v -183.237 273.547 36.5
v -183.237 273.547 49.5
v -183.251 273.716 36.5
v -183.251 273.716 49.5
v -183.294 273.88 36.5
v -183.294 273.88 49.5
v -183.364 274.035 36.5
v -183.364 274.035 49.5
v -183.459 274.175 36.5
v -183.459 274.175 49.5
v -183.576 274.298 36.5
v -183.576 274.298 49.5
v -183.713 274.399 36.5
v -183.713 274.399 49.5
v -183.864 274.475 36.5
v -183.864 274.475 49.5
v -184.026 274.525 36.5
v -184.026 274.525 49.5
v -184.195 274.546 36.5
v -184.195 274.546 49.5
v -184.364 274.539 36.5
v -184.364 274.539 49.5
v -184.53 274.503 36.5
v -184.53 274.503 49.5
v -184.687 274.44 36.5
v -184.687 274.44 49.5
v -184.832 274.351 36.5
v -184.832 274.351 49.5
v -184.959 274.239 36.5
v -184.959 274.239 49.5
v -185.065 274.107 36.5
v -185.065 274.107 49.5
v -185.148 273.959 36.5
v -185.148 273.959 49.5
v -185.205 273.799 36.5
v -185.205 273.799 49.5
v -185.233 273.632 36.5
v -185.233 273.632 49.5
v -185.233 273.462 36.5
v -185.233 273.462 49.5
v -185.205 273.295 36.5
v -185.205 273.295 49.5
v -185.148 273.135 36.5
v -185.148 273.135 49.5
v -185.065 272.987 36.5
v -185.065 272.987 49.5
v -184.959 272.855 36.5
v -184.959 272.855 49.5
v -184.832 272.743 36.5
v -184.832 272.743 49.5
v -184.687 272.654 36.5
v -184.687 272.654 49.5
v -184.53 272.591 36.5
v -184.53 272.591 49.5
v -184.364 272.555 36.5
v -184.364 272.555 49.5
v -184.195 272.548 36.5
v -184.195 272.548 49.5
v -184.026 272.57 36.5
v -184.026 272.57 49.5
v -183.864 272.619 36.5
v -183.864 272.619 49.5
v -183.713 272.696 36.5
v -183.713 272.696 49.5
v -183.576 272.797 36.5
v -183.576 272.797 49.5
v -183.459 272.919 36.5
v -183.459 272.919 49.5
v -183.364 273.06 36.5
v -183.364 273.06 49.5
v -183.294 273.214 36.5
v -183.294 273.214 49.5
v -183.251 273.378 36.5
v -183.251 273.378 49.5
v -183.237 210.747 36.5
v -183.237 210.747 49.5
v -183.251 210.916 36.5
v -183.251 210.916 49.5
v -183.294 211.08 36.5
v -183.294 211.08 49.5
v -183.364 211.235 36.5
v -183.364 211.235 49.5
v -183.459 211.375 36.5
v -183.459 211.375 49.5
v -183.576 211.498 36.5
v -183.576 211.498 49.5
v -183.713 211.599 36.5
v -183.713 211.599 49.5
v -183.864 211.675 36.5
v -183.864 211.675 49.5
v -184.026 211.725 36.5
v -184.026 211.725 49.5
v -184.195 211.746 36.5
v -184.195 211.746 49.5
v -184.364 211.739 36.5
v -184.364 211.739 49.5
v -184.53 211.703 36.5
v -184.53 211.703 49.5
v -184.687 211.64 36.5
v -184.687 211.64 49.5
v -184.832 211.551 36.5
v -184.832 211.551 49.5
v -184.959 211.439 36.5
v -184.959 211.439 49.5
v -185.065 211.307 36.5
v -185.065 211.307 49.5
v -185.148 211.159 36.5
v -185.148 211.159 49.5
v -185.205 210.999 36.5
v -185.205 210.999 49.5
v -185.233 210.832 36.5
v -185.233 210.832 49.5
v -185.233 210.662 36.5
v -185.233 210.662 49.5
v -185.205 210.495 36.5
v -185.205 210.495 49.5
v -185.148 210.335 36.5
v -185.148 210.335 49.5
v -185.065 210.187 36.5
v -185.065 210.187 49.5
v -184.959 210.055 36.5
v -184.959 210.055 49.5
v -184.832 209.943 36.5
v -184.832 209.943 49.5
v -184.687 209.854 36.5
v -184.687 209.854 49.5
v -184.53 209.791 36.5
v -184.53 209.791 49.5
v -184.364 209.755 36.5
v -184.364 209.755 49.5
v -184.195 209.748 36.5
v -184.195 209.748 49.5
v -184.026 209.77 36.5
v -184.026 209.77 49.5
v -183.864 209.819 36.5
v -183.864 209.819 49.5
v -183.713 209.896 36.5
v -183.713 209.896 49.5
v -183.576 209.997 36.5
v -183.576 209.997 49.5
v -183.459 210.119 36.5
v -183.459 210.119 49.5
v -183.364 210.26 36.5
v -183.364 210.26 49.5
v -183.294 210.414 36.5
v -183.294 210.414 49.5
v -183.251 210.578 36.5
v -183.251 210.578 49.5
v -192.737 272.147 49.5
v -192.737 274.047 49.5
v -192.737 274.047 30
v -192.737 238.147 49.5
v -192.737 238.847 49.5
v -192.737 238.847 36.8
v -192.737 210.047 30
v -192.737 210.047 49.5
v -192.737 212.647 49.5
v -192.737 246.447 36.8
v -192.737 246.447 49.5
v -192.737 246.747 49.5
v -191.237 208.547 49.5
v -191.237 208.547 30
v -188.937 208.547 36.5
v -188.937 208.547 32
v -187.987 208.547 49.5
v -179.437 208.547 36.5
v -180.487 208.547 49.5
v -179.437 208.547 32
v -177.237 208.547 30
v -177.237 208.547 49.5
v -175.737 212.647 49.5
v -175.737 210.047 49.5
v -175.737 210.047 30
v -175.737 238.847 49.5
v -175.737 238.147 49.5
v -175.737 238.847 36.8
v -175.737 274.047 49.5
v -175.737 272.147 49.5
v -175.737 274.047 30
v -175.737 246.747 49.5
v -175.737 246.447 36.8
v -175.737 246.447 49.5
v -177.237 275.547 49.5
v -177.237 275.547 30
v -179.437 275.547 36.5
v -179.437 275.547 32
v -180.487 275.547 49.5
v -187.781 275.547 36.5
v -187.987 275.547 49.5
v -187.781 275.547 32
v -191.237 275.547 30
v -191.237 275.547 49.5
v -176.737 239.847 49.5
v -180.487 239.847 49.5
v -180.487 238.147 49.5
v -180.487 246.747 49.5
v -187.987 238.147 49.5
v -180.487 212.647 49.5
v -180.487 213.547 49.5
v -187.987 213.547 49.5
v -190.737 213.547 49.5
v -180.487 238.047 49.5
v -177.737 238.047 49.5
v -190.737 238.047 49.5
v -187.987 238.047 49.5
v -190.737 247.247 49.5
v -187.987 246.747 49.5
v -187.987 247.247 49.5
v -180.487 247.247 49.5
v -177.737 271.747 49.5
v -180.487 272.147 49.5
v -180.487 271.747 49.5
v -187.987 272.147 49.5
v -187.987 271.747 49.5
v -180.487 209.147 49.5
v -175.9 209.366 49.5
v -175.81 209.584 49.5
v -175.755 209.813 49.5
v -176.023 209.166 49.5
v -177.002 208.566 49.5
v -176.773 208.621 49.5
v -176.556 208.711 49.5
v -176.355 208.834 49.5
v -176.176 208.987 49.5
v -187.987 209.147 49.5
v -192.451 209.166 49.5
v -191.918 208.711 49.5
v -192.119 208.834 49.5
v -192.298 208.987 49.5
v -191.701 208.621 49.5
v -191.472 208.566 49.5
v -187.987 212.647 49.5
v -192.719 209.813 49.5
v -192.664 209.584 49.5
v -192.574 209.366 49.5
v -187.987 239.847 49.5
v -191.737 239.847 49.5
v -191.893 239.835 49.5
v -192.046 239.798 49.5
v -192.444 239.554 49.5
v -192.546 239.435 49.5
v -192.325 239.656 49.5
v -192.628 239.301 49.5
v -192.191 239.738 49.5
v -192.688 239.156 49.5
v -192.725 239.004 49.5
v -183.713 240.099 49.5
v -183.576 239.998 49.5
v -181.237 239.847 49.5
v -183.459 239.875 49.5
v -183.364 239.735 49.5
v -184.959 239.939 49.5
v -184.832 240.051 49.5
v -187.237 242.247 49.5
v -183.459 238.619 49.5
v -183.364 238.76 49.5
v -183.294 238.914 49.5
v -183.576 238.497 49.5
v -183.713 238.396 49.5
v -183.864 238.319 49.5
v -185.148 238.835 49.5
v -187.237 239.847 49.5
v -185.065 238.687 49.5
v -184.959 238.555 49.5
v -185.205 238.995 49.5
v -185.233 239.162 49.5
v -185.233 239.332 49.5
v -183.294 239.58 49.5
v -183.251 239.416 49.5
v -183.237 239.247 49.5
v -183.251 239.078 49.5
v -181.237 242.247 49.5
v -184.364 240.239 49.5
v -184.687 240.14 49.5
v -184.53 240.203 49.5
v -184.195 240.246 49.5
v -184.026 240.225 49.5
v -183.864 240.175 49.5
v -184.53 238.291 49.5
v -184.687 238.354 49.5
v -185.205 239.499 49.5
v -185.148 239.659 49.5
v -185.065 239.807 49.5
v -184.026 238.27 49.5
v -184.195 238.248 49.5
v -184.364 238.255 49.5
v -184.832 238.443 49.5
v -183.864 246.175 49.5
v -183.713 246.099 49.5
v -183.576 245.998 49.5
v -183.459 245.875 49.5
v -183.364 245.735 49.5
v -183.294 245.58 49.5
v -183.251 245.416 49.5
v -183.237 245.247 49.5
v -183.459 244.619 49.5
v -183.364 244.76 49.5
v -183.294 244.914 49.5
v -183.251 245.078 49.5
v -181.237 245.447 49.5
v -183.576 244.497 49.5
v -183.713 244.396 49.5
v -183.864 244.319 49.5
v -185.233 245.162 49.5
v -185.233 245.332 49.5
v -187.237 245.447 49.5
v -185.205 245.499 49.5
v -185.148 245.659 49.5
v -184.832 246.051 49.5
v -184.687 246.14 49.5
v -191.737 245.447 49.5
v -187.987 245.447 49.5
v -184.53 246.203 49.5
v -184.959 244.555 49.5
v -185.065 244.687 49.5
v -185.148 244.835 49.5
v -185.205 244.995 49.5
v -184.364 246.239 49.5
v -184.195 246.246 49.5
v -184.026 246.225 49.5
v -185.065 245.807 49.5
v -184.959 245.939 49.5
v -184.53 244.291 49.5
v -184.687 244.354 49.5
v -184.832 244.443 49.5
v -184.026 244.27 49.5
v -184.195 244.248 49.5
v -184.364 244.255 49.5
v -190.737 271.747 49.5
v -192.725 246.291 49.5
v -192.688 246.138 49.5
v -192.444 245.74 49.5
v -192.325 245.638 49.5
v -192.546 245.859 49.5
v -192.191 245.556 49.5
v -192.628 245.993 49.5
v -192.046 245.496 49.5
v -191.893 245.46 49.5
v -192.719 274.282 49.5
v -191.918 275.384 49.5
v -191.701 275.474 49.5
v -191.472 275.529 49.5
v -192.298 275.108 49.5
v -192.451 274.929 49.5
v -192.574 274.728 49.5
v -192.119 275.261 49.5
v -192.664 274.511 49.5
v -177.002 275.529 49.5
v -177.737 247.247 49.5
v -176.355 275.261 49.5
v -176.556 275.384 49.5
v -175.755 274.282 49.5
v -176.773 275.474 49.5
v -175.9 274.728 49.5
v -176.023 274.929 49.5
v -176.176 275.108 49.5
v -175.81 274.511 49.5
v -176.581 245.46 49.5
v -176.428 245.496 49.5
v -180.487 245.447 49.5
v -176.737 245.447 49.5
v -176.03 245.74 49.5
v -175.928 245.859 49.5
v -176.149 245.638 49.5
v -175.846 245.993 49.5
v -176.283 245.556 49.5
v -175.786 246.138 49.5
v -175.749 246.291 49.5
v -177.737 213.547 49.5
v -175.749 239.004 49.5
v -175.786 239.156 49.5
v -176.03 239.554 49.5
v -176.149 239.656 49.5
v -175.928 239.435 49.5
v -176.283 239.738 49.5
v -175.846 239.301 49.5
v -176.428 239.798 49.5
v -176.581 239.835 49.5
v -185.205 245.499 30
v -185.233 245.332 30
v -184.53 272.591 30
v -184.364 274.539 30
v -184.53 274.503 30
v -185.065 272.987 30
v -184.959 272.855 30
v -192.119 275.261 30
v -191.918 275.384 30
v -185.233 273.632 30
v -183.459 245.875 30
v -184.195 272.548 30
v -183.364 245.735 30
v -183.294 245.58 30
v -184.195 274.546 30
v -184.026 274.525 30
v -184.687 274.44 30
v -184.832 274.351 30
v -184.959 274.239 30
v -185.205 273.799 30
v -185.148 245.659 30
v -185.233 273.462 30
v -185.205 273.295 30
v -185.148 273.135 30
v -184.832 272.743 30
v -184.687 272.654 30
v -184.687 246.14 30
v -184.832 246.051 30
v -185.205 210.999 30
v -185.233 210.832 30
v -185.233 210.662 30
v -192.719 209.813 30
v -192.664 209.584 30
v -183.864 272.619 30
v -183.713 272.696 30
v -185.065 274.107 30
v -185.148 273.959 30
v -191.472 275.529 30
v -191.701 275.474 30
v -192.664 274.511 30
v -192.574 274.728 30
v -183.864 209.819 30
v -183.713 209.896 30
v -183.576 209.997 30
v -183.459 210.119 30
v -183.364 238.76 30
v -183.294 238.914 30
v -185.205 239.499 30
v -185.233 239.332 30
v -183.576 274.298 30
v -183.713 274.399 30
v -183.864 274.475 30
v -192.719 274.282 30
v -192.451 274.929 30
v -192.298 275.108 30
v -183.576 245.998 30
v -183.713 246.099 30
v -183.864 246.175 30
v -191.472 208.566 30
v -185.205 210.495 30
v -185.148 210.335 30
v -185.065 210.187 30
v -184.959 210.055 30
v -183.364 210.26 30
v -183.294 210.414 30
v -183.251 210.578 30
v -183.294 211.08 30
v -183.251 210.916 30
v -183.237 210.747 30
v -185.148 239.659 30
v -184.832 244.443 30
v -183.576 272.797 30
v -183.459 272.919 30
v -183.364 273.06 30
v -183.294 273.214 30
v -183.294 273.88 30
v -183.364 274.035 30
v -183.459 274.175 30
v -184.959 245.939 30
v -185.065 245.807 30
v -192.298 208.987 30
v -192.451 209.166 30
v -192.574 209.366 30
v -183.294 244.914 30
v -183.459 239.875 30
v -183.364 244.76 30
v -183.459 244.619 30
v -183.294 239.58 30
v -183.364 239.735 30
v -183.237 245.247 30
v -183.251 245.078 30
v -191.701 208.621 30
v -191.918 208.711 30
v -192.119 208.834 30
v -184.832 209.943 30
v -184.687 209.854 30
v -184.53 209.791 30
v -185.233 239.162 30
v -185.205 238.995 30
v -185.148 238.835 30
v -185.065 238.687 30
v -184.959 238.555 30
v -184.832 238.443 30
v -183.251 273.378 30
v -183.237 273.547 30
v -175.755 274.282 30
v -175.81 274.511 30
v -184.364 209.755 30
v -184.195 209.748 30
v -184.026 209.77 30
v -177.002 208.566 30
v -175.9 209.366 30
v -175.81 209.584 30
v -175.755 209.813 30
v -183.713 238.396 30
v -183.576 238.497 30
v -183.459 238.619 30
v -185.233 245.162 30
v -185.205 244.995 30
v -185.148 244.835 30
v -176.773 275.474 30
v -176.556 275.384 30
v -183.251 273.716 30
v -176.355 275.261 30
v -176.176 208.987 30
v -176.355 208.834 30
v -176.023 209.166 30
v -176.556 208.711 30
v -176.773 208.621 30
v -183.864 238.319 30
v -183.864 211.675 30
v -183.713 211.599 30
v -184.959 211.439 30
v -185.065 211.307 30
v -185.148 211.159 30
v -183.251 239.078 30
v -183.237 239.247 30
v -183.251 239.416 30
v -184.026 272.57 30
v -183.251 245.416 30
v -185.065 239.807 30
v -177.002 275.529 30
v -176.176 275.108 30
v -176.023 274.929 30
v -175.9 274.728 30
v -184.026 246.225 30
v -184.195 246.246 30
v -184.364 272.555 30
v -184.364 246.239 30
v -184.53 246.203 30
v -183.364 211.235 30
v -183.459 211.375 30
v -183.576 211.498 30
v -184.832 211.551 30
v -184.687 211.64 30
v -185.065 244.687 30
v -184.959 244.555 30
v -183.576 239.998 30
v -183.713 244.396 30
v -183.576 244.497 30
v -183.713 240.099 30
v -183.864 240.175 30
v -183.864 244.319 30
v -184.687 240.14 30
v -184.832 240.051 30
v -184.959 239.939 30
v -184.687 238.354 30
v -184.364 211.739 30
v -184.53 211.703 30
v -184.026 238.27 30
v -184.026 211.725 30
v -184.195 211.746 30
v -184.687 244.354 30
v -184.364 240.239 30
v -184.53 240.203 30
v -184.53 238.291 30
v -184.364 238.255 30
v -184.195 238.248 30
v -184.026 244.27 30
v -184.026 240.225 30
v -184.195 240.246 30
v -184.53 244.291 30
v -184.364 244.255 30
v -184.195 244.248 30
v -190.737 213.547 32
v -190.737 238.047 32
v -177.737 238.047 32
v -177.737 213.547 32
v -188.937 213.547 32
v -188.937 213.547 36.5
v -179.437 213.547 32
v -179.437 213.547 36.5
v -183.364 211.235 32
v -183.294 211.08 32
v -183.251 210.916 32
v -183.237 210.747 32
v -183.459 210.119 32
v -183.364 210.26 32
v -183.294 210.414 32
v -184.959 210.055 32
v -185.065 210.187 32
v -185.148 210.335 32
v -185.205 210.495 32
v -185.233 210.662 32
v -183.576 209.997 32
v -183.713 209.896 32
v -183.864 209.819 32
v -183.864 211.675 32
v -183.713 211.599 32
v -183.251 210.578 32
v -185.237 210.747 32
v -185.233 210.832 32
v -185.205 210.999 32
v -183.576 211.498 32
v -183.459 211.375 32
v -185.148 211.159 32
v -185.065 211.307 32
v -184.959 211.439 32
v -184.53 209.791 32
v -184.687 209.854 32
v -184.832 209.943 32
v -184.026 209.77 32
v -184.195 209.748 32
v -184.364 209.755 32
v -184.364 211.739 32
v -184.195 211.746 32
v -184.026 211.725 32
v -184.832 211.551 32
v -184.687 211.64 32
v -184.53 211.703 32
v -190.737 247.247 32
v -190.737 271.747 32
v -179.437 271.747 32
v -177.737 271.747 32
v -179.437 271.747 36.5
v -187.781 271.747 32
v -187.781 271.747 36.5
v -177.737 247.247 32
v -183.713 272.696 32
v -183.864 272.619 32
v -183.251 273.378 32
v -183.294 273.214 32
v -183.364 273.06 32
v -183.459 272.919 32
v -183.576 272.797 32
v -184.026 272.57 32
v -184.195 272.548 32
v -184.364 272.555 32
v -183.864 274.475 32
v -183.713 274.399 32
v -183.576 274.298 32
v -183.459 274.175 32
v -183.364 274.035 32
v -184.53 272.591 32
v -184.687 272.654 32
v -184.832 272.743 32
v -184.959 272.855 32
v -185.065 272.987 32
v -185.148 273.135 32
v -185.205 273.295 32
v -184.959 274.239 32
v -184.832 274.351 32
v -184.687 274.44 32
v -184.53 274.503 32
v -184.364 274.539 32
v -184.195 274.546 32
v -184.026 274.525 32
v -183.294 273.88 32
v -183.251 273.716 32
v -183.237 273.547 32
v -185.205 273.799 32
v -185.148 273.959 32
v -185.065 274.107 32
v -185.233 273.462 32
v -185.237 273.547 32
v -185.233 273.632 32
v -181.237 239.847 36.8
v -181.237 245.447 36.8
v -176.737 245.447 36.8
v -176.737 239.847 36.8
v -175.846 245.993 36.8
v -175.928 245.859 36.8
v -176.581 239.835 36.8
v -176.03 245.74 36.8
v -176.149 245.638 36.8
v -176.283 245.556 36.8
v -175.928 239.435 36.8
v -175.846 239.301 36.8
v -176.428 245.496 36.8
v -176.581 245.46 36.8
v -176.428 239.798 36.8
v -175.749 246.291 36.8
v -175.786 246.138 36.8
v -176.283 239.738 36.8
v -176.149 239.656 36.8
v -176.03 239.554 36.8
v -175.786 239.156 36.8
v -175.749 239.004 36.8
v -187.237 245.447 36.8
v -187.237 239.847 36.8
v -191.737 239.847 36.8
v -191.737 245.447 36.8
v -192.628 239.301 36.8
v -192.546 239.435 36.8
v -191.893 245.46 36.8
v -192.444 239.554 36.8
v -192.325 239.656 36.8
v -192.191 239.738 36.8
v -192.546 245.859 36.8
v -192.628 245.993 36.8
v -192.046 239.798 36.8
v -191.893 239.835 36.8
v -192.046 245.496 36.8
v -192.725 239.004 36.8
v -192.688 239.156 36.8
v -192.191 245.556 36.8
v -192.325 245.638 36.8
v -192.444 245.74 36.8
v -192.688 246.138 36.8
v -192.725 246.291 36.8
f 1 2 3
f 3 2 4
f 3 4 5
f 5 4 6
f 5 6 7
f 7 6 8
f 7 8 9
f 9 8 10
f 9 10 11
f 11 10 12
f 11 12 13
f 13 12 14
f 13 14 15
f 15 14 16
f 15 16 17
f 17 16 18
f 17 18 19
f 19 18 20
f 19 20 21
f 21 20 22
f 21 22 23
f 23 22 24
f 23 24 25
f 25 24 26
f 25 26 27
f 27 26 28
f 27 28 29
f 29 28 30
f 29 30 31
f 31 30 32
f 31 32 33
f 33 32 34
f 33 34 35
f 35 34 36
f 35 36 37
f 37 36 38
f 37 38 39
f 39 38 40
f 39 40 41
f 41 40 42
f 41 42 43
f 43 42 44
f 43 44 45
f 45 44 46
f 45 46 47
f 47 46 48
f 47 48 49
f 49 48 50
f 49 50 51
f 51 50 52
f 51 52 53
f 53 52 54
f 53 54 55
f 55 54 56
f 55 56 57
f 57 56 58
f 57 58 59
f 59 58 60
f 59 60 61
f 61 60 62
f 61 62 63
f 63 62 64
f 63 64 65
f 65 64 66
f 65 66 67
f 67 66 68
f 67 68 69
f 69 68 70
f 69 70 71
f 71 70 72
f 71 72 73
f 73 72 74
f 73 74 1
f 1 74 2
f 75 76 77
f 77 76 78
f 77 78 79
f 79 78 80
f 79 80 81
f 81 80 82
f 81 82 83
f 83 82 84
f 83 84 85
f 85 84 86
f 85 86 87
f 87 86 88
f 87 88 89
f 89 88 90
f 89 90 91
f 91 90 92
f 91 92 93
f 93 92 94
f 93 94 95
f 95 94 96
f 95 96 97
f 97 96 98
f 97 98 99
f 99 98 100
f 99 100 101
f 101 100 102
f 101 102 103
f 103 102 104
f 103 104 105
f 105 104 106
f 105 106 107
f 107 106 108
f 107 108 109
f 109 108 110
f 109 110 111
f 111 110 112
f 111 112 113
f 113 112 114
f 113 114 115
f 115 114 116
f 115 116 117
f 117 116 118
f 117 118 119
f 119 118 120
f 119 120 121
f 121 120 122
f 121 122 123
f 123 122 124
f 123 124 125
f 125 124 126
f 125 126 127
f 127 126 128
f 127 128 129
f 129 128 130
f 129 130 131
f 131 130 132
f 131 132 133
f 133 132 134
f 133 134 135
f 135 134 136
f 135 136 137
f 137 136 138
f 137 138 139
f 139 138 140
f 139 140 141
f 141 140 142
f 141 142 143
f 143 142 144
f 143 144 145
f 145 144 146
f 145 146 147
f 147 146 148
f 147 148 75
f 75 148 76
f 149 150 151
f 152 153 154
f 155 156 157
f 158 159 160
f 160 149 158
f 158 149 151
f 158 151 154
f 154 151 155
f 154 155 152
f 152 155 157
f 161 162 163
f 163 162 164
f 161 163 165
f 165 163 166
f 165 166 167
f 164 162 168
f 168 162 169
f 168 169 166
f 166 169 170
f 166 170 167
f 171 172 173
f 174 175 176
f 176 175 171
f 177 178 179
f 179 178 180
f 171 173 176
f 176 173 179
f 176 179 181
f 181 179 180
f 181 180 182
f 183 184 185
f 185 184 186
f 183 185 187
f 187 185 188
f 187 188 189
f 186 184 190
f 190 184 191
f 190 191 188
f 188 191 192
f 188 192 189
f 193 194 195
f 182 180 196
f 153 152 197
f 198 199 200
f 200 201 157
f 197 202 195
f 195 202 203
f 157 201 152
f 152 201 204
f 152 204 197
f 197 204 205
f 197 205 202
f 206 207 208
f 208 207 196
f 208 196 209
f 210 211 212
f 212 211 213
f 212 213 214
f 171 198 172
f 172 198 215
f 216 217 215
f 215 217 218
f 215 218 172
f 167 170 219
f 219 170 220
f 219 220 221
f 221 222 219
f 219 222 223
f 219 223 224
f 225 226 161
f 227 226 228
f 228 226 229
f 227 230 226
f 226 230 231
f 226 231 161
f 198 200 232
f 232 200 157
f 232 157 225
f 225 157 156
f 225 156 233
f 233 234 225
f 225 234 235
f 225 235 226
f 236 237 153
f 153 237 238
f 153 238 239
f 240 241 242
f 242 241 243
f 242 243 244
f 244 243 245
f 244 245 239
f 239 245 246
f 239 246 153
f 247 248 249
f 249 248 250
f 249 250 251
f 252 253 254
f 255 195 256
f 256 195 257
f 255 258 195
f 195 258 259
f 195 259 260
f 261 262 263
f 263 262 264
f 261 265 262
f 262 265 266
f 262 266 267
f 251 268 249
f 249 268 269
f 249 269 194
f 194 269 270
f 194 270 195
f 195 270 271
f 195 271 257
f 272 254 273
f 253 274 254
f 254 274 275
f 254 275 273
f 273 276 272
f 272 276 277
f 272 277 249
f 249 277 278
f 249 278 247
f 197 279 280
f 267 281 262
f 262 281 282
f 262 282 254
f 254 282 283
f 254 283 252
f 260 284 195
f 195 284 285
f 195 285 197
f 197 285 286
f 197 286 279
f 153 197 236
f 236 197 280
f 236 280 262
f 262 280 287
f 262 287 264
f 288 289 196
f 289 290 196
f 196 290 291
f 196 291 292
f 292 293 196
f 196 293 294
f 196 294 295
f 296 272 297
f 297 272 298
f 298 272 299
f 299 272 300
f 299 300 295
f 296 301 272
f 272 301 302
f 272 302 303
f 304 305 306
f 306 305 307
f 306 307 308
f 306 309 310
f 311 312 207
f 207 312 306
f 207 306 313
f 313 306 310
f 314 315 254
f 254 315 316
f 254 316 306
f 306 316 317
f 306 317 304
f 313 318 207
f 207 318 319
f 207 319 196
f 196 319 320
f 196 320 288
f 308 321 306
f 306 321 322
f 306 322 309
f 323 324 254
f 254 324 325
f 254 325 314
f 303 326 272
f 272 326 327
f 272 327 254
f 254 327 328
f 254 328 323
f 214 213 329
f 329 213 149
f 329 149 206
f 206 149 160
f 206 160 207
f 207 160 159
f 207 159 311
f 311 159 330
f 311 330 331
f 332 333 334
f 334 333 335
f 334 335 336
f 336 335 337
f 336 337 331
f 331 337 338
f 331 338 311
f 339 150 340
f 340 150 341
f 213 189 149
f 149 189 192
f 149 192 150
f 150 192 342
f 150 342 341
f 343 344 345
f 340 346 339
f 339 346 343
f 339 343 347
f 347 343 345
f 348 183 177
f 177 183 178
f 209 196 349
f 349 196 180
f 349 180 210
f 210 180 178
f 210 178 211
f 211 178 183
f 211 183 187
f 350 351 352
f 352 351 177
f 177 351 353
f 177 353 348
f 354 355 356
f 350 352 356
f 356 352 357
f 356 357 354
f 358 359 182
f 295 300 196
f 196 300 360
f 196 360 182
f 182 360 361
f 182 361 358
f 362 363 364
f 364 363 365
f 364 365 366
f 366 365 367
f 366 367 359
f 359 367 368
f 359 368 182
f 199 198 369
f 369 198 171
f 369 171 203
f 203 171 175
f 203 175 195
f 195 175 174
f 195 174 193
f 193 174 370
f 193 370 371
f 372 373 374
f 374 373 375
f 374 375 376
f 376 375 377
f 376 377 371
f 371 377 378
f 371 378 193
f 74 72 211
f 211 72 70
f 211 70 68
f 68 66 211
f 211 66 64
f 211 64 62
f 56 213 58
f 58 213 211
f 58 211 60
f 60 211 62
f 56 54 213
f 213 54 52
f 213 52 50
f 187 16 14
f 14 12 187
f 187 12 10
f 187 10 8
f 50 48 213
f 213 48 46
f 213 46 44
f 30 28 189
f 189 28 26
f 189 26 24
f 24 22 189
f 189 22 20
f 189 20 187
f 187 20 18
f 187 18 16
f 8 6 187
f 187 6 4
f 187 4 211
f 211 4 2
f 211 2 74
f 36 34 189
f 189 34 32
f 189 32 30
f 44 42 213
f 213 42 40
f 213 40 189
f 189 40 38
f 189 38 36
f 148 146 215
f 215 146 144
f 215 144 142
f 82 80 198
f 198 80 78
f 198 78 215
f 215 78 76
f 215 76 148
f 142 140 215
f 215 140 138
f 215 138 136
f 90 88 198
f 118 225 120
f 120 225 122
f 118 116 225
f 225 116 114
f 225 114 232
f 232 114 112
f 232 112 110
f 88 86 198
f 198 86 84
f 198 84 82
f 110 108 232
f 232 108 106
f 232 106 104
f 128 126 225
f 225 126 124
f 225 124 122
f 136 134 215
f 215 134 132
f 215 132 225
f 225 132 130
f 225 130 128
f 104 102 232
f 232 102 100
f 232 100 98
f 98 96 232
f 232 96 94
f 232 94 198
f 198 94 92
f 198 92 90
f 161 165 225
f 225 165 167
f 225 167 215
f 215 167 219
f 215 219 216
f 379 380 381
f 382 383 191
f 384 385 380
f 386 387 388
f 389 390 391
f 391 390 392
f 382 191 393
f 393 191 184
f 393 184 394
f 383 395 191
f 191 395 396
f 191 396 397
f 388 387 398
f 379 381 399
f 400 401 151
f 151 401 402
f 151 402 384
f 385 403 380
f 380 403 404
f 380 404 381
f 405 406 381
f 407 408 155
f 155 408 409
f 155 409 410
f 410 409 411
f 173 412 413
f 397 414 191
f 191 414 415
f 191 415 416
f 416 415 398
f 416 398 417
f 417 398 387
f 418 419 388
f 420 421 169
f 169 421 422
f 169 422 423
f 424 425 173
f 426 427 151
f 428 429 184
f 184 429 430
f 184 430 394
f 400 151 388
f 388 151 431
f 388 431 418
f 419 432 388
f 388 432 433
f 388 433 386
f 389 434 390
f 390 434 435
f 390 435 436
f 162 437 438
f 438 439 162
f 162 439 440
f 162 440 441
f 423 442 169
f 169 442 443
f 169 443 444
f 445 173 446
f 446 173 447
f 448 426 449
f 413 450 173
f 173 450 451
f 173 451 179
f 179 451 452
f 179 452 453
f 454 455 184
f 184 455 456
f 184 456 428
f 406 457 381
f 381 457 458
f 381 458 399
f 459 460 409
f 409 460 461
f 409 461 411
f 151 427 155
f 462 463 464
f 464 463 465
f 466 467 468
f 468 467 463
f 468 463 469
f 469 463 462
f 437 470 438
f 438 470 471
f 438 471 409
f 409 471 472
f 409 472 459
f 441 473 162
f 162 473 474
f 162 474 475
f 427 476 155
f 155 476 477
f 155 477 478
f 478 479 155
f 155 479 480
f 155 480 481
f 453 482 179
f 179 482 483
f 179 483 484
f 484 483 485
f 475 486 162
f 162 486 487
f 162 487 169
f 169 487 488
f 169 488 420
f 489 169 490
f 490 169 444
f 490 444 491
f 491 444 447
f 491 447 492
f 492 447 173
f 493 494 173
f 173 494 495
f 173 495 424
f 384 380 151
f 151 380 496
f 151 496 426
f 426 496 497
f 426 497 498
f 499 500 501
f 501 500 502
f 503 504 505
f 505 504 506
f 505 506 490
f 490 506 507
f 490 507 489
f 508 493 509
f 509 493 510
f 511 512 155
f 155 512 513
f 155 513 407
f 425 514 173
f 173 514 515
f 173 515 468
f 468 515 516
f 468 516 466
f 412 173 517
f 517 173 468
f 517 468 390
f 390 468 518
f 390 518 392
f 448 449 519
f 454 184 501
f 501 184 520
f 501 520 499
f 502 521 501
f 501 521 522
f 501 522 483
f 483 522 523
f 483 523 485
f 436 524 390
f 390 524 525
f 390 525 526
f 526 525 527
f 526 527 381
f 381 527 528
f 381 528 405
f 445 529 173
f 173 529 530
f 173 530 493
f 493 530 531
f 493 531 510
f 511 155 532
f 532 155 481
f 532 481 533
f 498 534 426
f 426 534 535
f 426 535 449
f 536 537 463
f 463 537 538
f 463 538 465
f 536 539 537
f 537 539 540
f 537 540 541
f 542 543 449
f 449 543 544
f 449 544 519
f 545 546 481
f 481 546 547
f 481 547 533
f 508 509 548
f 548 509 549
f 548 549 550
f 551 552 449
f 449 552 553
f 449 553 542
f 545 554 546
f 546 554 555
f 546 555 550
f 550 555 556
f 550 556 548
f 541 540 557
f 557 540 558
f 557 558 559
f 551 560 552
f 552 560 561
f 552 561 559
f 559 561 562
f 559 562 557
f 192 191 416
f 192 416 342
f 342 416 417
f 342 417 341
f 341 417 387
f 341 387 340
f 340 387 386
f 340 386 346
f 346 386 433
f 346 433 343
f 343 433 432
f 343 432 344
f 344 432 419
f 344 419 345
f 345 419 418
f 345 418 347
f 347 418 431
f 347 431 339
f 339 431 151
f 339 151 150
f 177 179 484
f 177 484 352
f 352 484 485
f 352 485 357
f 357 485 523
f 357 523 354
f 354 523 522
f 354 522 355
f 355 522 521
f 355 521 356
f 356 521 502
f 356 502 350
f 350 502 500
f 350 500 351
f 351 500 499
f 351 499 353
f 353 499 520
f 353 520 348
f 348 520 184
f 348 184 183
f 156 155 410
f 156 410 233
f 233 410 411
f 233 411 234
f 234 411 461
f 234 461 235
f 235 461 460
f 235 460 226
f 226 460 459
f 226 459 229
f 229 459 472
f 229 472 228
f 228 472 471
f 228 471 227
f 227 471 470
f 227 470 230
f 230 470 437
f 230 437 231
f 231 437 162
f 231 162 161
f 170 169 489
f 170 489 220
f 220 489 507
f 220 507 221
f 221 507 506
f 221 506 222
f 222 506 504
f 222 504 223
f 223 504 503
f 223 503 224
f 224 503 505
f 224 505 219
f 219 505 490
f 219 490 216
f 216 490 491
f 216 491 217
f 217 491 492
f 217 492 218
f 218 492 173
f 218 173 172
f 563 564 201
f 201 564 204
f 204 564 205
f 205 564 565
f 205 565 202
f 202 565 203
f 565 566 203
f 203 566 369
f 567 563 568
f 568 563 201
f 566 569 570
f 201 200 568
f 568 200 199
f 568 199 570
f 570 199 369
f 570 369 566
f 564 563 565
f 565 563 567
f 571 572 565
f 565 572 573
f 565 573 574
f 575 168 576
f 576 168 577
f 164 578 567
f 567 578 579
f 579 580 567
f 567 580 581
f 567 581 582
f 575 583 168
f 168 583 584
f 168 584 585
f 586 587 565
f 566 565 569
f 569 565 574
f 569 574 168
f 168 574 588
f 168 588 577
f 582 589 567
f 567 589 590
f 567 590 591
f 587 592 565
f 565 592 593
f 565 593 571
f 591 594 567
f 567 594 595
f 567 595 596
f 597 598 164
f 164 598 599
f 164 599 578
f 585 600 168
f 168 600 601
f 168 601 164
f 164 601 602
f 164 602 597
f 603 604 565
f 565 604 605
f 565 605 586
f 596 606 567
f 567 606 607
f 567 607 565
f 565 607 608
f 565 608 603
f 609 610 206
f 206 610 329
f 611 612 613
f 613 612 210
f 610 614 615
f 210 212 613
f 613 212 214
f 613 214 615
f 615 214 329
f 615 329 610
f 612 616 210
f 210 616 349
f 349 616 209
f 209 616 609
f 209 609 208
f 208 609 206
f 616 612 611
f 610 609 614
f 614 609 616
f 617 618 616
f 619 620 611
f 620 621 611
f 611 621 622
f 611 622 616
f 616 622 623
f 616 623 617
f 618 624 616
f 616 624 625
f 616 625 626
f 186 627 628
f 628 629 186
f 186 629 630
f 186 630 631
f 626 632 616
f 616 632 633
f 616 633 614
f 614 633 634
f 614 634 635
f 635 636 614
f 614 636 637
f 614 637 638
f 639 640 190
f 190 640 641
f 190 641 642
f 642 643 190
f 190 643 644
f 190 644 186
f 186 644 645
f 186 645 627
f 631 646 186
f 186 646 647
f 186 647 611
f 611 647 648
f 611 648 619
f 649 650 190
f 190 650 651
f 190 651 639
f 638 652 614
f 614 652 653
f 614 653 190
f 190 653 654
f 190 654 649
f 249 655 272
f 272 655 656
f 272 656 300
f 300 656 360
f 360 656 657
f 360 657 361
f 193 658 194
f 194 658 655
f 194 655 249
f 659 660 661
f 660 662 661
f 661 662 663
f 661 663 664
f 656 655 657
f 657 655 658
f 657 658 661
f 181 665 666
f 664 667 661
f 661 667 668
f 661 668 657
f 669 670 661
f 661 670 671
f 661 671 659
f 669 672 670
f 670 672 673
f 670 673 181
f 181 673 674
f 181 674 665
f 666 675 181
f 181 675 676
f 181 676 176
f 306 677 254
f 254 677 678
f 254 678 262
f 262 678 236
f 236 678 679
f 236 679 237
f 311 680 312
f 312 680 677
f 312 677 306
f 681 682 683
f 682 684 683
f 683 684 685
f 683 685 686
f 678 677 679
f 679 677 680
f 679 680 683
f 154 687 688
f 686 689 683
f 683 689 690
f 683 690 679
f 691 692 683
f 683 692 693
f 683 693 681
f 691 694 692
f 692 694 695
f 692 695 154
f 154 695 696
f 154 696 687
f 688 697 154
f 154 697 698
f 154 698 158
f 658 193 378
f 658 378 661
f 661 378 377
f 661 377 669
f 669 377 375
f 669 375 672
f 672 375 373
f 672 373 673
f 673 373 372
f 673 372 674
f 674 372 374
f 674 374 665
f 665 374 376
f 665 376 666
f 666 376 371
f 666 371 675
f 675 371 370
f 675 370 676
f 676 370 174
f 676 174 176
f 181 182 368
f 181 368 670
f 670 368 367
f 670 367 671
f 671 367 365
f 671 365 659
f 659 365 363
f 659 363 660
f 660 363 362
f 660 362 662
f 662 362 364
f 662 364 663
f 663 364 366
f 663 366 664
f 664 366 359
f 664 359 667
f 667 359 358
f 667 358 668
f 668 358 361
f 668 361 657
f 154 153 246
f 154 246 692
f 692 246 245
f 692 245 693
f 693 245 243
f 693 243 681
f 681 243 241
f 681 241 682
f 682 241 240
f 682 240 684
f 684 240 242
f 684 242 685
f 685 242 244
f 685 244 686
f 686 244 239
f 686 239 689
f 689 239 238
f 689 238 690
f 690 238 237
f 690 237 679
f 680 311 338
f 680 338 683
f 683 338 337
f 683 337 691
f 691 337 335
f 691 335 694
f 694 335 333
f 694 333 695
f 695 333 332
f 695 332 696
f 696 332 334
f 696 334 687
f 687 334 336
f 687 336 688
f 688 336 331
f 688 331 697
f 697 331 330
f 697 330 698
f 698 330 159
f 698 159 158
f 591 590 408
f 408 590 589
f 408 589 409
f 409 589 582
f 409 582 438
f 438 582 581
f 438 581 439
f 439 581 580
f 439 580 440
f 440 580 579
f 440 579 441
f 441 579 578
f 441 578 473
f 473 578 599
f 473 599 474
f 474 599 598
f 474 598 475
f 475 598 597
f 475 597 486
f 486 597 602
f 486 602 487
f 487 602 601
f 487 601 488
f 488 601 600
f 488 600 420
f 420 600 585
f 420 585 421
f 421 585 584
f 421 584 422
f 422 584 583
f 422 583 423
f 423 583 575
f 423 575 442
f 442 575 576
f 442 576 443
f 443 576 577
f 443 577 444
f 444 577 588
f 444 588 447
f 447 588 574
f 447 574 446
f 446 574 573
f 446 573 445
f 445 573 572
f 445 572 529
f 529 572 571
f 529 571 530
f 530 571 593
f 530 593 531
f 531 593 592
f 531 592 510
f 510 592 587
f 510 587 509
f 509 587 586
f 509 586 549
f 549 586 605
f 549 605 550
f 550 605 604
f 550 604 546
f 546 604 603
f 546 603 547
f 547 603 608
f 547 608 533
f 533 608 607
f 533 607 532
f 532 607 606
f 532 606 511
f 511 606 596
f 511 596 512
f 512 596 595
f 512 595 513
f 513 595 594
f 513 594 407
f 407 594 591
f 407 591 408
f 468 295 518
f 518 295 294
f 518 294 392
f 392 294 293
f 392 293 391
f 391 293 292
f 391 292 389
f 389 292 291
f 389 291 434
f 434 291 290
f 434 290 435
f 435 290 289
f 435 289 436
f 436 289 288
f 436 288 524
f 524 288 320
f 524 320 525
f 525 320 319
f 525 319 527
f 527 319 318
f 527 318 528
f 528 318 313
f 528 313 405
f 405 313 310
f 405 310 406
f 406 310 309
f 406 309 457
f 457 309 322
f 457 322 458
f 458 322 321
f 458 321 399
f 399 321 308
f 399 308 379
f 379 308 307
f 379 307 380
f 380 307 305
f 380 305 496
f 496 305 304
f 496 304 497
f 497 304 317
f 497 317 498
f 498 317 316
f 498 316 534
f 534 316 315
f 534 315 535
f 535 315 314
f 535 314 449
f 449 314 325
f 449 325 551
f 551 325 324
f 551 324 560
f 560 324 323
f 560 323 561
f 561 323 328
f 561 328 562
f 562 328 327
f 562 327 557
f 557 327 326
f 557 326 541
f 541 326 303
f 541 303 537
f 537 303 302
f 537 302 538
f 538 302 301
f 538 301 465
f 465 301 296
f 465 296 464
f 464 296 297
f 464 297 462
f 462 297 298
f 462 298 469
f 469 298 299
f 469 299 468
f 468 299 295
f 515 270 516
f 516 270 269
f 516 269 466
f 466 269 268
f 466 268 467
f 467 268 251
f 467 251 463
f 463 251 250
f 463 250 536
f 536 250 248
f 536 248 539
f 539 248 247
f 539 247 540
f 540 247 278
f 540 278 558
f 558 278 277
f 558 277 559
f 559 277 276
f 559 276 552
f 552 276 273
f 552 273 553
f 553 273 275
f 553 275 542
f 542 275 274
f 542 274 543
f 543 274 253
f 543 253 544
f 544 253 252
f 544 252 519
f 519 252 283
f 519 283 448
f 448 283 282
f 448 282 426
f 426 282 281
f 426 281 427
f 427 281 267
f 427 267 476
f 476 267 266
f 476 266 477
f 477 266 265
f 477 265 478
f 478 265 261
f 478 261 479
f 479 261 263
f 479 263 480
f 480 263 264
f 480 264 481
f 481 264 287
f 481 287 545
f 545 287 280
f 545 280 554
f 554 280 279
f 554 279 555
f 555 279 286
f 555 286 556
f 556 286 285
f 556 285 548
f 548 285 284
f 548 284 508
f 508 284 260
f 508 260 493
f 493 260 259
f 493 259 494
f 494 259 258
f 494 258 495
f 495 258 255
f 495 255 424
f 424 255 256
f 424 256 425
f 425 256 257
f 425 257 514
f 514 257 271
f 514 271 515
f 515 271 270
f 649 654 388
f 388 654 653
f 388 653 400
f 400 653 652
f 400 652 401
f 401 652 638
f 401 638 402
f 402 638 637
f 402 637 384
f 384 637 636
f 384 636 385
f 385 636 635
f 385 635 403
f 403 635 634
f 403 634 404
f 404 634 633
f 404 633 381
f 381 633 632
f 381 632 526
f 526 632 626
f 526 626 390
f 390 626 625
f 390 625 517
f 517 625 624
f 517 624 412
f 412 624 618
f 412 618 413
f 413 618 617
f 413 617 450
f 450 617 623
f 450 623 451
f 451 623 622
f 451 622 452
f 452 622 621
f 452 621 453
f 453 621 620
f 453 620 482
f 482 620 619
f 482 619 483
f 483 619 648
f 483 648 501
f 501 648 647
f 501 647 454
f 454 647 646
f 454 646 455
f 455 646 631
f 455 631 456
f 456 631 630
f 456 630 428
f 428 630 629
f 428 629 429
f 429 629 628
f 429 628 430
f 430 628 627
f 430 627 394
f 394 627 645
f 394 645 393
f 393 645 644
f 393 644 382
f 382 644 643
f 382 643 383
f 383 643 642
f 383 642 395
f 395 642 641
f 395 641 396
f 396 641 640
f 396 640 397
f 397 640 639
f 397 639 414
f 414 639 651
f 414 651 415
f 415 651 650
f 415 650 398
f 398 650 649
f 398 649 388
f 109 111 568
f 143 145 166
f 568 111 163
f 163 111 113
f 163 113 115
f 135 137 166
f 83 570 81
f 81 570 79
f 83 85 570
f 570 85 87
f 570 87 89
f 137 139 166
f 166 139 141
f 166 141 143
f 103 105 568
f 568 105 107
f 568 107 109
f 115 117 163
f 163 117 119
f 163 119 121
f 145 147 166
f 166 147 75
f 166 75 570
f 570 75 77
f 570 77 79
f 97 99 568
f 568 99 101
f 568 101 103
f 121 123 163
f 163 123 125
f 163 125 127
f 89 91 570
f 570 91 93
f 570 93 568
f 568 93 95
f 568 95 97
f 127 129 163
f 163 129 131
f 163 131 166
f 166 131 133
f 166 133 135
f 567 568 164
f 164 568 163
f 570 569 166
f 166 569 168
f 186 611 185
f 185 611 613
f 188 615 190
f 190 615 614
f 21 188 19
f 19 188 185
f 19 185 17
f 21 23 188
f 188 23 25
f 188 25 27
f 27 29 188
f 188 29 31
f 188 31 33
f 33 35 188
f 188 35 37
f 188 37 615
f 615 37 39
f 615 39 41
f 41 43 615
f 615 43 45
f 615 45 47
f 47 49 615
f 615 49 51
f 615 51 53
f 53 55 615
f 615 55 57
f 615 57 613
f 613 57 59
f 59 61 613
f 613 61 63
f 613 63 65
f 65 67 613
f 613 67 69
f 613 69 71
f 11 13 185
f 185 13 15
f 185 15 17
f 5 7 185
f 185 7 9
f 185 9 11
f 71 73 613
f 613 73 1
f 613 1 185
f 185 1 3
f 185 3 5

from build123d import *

# Parameters (mm, degrees)
SKETCH4_W           = 17
SKETCH4_H           = 67
BOSS_EXTRUDE1_DEPTH = 19.5
FILLET1_R           = 1.5
SKETCH5_W           = 13
SKETCH5_H           = 24.5
CUT_EXTRUDE1_DEPTH  = 17.5
SKETCH6_W           = 5.5
SKETCH6_H           = 5.6
CUT_EXTRUDE2_DEPTH  = 12.7
FILLET2_R           = 1
SKETCH7_R           = 1
CUT_EXTRUDE3_DEPTH  = 337.829426821
SKETCH8_W           = 9.5
SKETCH8_H           = 4.5
CUT_EXTRUDE4_DEPTH  = 5
SKETCH9_W           = 8.343526146
SKETCH9_H           = 4.5
CUT_EXTRUDE5_DEPTH  = 5


with BuildPart() as part:
    # Sketch4 → Boss-Extrude1 (new body)
    with BuildSketch(Plane.XY.offset(30)):
        with Locations((-184.236990356, 242.047210693)):
            Rectangle(SKETCH4_W, SKETCH4_H)
    extrude(amount=BOSS_EXTRUDE1_DEPTH)

    # Fillet1
    fillet1_edges = [part.edges().sort_by_distance(p)[0] for p in [
        (-192.736990356, 275.547210693, 39.75),
        (-175.736990356, 275.547210693, 39.75),
        (-175.736990356, 208.547210693, 39.75),
        (-192.736990356, 208.547210693, 39.75),
    ]]
    fillet(fillet1_edges, radius=FILLET1_R)

    # Sketch5 → Cut-Extrude1 (cut)
    with BuildSketch(Plane.XY.offset(49.5)):
        with Locations((-184.236990356, 259.497210693)):
            Rectangle(SKETCH5_W, SKETCH5_H)
        with Locations((-184.236990356, 225.797210693)):
            Rectangle(SKETCH5_W, SKETCH5_H)
    extrude(amount=-CUT_EXTRUDE1_DEPTH, mode=Mode.SUBTRACT)

    # Sketch6 → Cut-Extrude2 (cut)
    with BuildSketch(Plane.XY.offset(49.5)):
        with Locations((-189.986990356, 242.647210693)):
            Rectangle(SKETCH6_W, SKETCH6_H)
        with Locations((-178.486990356, 242.647210693)):
            Rectangle(SKETCH6_W, SKETCH6_H)
    extrude(amount=-CUT_EXTRUDE2_DEPTH, mode=Mode.SUBTRACT)

    # Fillet2
    fillet2_edges = [part.edges().sort_by_distance(p)[0] for p in [
        (-192.736990356, 239.847210693, 43.15),
        (-192.736990356, 245.447210693, 43.15),
        (-175.736990356, 245.447210693, 43.15),
        (-175.736990356, 239.847210693, 43.15),
    ]]
    fillet(fillet2_edges, radius=FILLET2_R)

    # Sketch7 → Cut-Extrude3 (cut, through all)
    with BuildSketch(Plane.XY.offset(49.5)):
        with Locations((-184.236990356, 273.547210693)):
            Circle(SKETCH7_R)
        with Locations((-184.236990356, 210.747210693)):
            Circle(SKETCH7_R)
        with Locations((-184.236990356, 245.247210693)):
            Circle(SKETCH7_R)
        with Locations((-184.236990356, 239.247210693)):
            Circle(SKETCH7_R)
    extrude(amount=-CUT_EXTRUDE3_DEPTH, mode=Mode.SUBTRACT)

    # Sketch8 → Cut-Extrude4 (cut)
    with BuildSketch(Plane(origin=(0, 208.547210693, 0), x_dir=(-1, 0, 0), z_dir=(0, -1, 0))):
        with Locations((184.186990356, -34.25)):
            Rectangle(SKETCH8_W, SKETCH8_H)
    extrude(amount=-CUT_EXTRUDE4_DEPTH, mode=Mode.SUBTRACT)

    # Sketch9 → Cut-Extrude5 (cut)
    with BuildSketch(Plane(origin=(0, 275.547210693, 0), x_dir=(1, 0, 0), z_dir=(0, 1, 0))):
        with Locations((-183.608753429, -34.25)):
            Rectangle(SKETCH9_W, SKETCH9_H)
    extrude(amount=-CUT_EXTRUDE5_DEPTH, mode=Mode.SUBTRACT)


solid = part.part
